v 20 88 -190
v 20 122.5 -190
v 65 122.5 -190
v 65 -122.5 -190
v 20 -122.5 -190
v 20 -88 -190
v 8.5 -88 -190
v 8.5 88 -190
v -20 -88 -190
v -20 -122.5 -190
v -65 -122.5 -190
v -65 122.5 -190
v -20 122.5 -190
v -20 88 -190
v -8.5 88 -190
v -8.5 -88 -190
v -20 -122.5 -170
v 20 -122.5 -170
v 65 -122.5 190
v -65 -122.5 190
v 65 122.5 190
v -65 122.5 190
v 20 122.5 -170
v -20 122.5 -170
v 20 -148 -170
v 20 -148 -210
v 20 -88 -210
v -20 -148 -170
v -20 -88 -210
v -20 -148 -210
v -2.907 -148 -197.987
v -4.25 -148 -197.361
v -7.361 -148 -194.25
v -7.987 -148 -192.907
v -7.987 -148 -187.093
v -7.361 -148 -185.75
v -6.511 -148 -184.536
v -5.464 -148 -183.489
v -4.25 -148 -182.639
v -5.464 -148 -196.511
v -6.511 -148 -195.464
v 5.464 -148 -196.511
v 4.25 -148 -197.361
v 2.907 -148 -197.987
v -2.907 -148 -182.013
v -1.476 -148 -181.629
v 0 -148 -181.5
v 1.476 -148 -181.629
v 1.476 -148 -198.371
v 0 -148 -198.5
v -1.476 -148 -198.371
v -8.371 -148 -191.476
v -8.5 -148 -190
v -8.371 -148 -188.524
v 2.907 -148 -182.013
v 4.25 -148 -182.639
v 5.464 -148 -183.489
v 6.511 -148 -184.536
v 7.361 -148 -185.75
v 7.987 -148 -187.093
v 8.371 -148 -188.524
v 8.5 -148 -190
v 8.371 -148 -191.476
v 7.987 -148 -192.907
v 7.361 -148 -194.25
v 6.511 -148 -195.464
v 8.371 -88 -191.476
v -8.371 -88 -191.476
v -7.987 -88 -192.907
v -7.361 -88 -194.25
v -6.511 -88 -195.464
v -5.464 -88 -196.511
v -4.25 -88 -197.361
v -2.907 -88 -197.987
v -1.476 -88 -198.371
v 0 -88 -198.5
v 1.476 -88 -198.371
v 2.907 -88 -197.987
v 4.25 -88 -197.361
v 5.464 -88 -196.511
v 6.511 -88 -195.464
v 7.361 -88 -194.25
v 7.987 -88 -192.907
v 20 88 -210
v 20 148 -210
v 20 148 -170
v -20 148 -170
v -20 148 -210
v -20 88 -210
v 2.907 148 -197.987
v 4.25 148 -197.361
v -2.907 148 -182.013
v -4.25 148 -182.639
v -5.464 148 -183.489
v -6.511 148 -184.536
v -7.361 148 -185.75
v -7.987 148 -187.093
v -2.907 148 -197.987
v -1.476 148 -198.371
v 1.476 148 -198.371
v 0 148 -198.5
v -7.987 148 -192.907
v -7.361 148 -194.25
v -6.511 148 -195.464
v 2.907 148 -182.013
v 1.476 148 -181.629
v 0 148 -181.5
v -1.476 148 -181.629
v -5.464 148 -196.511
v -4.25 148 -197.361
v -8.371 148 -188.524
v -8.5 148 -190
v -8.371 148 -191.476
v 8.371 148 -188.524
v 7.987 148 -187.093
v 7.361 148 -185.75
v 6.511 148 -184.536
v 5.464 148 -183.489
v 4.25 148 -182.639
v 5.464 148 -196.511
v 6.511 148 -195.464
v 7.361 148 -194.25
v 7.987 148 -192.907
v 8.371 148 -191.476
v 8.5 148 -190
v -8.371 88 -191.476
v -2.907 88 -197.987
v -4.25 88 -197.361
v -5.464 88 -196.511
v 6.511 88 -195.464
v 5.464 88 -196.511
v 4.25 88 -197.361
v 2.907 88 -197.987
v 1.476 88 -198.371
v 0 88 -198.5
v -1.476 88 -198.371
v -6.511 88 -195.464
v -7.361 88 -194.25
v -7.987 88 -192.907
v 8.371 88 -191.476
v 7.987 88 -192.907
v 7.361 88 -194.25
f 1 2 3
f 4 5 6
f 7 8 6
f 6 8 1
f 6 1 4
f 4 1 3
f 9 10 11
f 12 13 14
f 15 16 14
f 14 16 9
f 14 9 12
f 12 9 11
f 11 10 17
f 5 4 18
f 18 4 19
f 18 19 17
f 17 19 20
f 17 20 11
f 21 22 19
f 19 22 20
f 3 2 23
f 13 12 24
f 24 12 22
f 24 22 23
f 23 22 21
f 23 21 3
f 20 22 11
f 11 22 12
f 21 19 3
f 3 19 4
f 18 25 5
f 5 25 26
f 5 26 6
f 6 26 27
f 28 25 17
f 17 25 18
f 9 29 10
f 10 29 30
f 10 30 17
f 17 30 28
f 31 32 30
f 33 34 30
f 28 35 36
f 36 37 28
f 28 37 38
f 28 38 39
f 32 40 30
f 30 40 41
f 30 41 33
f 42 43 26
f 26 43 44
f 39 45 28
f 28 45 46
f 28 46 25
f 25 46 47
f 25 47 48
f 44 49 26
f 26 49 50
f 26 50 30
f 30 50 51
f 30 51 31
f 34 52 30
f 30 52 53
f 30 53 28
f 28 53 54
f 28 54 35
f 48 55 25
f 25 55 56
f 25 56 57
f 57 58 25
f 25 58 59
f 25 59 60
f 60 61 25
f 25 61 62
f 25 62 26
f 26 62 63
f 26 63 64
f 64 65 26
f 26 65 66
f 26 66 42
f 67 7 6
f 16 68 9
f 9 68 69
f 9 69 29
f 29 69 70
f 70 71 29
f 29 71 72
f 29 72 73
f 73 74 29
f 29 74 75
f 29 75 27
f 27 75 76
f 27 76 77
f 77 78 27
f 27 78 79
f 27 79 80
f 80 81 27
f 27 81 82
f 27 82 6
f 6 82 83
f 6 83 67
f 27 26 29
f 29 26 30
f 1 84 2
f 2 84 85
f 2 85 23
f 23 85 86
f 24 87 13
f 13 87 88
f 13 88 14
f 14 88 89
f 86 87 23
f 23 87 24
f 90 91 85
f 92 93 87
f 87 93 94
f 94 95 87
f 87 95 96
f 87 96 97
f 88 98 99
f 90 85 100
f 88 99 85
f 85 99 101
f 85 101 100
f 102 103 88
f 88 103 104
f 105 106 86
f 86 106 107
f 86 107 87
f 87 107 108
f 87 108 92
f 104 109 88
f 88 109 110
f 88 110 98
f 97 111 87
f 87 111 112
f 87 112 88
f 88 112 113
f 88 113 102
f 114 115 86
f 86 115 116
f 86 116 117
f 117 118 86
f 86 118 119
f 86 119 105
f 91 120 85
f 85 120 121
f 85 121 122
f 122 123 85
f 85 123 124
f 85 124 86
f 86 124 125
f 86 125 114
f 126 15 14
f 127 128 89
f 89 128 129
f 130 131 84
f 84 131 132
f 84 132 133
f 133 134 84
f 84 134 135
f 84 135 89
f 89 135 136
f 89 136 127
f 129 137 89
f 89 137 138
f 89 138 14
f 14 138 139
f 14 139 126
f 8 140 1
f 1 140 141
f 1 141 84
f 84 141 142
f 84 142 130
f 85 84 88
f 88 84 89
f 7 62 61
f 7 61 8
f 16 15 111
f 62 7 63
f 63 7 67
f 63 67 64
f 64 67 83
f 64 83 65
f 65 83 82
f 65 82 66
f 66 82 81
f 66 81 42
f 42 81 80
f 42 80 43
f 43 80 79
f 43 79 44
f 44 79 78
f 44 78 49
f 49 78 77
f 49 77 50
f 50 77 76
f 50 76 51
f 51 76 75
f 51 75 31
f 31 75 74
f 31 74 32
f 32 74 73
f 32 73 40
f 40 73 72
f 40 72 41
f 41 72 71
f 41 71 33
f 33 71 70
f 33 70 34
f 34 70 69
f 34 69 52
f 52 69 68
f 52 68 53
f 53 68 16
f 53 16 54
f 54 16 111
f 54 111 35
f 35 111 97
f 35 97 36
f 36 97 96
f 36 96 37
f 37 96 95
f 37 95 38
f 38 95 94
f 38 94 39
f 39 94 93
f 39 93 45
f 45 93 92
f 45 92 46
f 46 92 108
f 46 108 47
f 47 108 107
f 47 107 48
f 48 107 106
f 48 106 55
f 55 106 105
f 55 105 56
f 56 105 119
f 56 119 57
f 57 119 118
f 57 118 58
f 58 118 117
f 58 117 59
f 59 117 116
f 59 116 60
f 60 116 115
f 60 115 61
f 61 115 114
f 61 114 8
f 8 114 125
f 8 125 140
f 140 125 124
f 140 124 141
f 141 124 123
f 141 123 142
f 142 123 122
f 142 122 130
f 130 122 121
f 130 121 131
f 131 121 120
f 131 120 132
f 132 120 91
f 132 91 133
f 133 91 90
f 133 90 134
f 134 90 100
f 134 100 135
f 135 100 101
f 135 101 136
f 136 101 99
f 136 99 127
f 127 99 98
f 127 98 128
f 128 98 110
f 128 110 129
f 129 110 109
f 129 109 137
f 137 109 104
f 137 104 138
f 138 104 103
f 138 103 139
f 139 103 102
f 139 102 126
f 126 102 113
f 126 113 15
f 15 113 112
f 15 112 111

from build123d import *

# Parameters (mm, degrees)
SKETCH_1_W           = 380
SKETCH_1_H           = 245
EXTRUDE_1_DEPTH      = 65
EXTRUDE_1_DEPTH_BACK = 65
SKETCH_2_W           = 40
SKETCH_2_H           = 20
EXTRUDE_2_DEPTH      = 25.5
SKETCH_3_W           = 40
SKETCH_3_H           = 60
EXTRUDE_3_DEPTH      = 20
SKETCH_4_R           = 8.5
CUT_EXTRUDE_1_DEPTH  = 296


with BuildPart() as part:
    # Эскиз1 → Бобышка-Вытянуть1 (new body, two sides)
    with BuildSketch(Plane(origin=(0, 0, 0), x_dir=(0, 0, -1), z_dir=(1, 0, 0))) as extrude_1_sk:
        Rectangle(SKETCH_1_W, SKETCH_1_H)
    extrude(amount=EXTRUDE_1_DEPTH)
    extrude(extrude_1_sk.sketch, amount=-EXTRUDE_1_DEPTH_BACK)

    # Эскиз2 → Бобышка-Вытянуть2 (add)
    with BuildSketch(Plane(origin=(0, -122.5, -67.5), x_dir=(-1, 0, 0), z_dir=(0, 1, 0))):
        with Locations((0, -112.5)):
            Rectangle(SKETCH_2_W, SKETCH_2_H)
    extrude_2 = extrude(amount=-EXTRUDE_2_DEPTH)

    # Эскиз3 → Бобышка-Вытянуть3 (add)
    with BuildSketch(Plane(origin=(0, 67.5, -190), x_dir=(1, 0, 0), z_dir=(0, 0, 1))):
        with Locations((0, -185.5)):
            Rectangle(SKETCH_3_W, SKETCH_3_H)
    extrude_3 = extrude(amount=-EXTRUDE_3_DEPTH)

    # Зеркальное отражение1: Бобышка-Вытянуть2, Бобышка-Вытянуть3 across plane
    add(extrude_2.mirror(Plane.ZX))
    add(extrude_3.mirror(Plane.ZX))

    # Эскиз4 → Вырез-Вытянуть1 (cut)
    with BuildSketch(Plane(origin=(0, -148, 0), x_dir=(-1, 0, 0), z_dir=(0, -1, 0))):
        with Locations((0, 190)):
            Circle(SKETCH_4_R)
    extrude(amount=-CUT_EXTRUDE_1_DEPTH, mode=Mode.SUBTRACT)


solid = part.part
